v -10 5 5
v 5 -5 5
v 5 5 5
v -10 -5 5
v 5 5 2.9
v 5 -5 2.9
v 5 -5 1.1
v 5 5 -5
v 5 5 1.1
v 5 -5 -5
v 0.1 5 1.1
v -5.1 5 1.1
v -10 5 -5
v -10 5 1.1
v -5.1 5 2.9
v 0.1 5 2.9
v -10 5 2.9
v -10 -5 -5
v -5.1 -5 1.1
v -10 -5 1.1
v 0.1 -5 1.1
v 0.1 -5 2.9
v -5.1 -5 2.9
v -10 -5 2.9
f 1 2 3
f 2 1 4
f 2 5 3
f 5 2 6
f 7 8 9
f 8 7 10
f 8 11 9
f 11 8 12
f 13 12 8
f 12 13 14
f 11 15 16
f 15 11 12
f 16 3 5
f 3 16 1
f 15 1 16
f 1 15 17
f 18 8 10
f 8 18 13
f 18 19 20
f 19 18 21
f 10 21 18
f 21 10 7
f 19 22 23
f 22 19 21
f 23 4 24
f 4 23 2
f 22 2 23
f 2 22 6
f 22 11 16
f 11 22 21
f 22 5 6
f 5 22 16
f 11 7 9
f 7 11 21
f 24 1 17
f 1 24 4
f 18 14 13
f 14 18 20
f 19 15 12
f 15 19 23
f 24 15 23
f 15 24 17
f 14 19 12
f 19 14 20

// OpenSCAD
//wenn reduzierte Flow Rate 60..80%, dann sind 2mm schlitz zuviel

difference(){
    cube([10,10,10], center=true);
    translate([2.6,0,2]){
        cube([5,10.1,1.8],center=true);
    }
}
translate([-5,0,0]){
    mirror([-1,0,0]){
        difference(){
            cube([10,10,10], center=true);
            translate([2.6,0,2]){
                cube([5,10.1,1.8],center=true);
            }
        }
    }
}
